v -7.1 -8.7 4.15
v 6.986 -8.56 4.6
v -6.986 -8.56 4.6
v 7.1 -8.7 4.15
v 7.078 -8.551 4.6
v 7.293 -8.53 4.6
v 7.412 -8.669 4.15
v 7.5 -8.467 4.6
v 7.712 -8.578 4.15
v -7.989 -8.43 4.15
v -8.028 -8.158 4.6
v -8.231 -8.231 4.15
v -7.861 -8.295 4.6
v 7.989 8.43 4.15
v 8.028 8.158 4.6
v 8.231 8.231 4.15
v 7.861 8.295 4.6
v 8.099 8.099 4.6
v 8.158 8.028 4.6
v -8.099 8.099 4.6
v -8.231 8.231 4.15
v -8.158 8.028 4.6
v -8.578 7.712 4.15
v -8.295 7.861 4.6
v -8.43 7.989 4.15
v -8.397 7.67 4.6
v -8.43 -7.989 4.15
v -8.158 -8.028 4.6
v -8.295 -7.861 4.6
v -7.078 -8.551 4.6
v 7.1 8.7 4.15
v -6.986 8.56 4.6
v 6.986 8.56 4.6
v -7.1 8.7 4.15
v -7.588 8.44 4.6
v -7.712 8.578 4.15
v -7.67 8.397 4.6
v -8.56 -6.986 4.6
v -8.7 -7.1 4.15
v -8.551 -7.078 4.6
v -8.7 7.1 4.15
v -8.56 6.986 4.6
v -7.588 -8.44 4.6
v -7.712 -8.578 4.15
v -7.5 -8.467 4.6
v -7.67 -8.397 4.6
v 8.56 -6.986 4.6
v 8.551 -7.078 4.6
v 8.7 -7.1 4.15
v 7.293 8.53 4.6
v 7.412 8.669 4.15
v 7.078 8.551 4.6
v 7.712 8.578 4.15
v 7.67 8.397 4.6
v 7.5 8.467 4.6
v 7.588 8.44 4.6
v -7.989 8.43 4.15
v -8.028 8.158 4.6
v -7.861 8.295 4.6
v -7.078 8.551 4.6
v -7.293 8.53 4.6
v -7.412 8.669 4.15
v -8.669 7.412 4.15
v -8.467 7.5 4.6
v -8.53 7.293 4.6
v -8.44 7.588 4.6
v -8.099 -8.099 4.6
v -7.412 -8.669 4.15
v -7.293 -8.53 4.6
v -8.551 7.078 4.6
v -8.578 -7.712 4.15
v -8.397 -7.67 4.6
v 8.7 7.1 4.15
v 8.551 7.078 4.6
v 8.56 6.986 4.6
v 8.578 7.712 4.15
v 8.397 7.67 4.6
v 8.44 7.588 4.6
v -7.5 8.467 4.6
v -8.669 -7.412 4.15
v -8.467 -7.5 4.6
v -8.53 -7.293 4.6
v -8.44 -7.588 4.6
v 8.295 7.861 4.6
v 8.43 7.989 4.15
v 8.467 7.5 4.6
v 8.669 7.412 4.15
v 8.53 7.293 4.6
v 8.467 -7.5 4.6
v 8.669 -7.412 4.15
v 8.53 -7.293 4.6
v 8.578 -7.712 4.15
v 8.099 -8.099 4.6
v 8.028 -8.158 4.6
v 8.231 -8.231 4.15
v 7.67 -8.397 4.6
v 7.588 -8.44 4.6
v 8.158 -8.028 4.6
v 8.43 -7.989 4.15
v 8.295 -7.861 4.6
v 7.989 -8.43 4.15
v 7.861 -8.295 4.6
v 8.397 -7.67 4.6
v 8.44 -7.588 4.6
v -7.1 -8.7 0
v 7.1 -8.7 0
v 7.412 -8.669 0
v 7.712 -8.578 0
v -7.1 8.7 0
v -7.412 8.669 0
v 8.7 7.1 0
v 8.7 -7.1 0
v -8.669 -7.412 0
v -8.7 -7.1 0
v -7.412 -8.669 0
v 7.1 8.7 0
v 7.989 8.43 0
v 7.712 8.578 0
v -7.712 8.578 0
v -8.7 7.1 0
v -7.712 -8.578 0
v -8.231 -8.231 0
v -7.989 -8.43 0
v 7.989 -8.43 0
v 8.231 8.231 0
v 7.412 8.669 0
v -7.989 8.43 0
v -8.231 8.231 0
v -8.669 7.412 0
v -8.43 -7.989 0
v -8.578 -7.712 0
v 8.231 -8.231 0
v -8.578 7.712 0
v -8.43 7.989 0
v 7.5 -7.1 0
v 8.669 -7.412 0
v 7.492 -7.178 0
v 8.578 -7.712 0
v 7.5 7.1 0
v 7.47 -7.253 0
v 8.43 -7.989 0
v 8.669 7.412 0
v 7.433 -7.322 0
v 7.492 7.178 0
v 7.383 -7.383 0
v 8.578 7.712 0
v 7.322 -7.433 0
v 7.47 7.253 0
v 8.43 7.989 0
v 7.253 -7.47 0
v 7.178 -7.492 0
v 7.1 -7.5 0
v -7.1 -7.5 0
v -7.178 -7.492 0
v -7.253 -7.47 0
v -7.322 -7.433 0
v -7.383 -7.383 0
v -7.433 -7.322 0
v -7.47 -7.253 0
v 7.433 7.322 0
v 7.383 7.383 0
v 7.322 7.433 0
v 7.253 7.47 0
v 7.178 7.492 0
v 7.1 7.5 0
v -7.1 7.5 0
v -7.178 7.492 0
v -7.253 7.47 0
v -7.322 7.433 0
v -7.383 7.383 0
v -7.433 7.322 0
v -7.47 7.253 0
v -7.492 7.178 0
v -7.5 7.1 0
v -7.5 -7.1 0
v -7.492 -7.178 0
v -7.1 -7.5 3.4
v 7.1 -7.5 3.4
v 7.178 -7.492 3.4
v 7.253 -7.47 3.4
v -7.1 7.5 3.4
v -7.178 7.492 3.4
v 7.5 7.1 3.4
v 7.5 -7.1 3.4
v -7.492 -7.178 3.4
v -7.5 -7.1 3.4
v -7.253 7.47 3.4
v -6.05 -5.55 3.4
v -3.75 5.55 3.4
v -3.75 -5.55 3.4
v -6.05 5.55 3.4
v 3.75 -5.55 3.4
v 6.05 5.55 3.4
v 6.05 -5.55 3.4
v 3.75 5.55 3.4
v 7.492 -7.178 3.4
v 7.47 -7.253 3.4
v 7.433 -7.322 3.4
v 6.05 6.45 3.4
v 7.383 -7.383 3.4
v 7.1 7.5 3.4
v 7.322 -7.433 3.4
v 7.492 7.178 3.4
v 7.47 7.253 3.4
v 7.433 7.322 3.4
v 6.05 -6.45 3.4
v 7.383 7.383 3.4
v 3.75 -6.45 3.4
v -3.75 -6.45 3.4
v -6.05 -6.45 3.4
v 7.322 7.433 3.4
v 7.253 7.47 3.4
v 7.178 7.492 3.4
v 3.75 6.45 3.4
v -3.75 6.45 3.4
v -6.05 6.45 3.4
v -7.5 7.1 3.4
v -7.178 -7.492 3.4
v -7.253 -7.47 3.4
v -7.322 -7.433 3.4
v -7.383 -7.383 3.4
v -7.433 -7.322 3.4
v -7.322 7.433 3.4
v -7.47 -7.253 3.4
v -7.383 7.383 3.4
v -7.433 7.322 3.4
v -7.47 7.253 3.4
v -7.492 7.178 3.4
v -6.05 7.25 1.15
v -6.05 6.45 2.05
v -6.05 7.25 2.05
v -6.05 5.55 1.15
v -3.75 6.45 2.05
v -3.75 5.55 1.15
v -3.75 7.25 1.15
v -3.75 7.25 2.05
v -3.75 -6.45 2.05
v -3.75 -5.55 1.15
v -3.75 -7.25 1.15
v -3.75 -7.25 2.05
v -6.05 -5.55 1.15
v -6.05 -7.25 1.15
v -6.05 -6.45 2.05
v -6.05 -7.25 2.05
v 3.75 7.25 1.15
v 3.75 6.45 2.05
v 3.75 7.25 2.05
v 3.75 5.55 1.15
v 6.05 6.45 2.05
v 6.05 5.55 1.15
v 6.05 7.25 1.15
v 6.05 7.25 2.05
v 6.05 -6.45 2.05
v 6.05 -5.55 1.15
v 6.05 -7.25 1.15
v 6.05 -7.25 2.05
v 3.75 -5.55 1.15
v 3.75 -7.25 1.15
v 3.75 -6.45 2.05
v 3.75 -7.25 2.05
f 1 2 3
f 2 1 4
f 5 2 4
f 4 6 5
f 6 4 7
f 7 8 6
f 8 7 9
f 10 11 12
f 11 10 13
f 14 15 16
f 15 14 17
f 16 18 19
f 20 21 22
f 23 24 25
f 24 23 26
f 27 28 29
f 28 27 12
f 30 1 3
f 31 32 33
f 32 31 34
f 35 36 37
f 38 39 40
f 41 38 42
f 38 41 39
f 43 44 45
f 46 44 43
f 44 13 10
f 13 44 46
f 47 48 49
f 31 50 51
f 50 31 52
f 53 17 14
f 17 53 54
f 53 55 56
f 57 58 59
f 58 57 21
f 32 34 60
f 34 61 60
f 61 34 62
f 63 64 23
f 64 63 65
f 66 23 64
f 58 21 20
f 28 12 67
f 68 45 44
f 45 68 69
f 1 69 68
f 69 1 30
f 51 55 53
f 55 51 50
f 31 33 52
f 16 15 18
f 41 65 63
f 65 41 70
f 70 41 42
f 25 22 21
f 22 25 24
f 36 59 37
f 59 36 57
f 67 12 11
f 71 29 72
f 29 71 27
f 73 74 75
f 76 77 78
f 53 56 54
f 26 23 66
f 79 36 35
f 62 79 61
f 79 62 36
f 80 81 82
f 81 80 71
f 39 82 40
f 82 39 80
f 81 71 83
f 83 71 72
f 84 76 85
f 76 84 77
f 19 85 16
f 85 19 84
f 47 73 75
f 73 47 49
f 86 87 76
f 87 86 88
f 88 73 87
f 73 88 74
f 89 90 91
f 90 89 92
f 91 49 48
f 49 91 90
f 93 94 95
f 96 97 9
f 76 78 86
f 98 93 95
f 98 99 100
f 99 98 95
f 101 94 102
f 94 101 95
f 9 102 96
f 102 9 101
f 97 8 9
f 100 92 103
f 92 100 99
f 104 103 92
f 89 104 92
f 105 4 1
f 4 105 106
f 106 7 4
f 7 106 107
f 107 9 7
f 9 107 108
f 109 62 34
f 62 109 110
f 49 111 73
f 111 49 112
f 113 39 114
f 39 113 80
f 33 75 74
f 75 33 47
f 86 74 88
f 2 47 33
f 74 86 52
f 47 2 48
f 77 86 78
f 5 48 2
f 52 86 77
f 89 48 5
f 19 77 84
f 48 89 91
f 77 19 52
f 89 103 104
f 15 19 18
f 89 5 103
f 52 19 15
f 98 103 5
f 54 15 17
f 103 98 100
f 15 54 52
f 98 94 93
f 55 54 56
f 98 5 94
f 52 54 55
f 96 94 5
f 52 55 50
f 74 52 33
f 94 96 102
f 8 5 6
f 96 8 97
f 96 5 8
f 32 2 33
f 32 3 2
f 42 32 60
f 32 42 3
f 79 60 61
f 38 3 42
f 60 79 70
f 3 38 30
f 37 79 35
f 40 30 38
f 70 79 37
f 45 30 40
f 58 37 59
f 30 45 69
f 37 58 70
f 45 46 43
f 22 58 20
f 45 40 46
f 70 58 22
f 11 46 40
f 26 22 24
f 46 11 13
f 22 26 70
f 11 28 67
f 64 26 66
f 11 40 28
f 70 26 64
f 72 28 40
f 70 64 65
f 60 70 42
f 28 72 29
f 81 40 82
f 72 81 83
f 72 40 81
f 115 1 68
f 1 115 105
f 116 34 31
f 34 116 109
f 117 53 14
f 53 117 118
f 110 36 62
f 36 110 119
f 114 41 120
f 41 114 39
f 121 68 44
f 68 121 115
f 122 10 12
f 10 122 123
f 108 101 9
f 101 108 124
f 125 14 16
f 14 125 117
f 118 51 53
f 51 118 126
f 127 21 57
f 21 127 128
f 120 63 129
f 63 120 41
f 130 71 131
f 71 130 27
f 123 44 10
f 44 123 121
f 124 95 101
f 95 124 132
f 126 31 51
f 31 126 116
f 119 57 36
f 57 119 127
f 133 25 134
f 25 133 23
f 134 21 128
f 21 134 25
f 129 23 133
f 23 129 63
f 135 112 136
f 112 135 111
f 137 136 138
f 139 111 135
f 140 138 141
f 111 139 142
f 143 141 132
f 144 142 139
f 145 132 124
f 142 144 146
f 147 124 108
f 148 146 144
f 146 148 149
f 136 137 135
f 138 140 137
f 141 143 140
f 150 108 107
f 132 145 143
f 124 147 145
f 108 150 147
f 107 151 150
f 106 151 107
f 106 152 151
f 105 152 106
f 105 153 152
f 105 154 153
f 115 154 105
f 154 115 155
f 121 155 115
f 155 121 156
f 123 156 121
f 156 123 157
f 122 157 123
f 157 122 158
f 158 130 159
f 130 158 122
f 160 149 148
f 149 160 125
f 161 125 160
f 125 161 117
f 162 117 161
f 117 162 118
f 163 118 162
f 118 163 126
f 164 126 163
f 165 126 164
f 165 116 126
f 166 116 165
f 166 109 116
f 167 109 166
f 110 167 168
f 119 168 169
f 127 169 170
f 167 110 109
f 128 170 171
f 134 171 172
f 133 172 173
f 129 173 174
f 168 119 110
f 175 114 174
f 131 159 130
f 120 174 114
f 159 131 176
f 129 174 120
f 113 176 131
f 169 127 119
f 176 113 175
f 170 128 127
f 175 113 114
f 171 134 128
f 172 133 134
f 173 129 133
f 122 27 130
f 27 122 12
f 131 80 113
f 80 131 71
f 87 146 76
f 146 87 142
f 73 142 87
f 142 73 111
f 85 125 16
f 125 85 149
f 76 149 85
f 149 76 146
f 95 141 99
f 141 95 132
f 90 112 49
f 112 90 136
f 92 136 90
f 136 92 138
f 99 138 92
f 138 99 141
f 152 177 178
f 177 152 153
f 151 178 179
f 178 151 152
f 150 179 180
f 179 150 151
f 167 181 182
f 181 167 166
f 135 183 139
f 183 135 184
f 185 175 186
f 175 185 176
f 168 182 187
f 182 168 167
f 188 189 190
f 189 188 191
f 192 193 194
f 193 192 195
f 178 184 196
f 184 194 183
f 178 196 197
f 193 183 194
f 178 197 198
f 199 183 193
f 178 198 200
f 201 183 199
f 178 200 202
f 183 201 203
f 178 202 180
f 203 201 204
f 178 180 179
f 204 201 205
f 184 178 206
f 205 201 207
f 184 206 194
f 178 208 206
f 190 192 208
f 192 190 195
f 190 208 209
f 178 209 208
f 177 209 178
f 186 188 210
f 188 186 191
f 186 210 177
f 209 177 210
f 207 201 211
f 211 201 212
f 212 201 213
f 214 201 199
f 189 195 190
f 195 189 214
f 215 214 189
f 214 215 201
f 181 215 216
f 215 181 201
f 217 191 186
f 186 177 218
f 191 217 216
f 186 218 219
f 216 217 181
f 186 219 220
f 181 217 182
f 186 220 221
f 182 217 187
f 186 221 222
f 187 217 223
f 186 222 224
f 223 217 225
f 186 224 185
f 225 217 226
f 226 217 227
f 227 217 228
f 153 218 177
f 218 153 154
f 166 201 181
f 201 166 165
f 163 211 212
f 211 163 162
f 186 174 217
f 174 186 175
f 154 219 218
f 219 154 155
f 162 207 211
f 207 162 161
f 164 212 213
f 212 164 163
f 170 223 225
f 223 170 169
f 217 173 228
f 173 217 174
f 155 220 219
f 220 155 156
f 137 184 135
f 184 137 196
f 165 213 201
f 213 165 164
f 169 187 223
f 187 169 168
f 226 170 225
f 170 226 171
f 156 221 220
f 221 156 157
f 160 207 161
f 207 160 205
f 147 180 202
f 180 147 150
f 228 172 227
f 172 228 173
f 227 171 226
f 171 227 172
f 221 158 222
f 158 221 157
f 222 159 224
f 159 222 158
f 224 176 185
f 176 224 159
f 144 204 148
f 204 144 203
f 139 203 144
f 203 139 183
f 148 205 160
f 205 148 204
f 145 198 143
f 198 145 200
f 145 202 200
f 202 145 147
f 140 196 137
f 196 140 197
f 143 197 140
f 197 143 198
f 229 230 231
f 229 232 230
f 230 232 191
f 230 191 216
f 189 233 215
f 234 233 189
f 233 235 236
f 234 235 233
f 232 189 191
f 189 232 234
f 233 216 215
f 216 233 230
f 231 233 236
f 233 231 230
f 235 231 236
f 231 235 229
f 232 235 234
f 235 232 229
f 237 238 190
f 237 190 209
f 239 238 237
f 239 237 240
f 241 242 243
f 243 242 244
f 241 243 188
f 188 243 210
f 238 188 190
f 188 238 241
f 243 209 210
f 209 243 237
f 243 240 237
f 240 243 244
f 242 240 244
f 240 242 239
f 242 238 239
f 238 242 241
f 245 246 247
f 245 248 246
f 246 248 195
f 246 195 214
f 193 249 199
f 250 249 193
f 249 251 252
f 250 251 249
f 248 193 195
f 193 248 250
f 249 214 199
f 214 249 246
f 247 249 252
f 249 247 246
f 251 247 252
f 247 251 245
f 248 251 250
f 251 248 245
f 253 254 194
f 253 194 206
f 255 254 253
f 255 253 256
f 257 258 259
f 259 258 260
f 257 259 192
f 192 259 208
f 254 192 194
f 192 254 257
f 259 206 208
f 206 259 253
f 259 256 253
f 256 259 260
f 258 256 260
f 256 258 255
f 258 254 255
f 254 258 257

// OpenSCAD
// ============================================================================
//  笔记本 1u 薄键帽  (直壁 · 底面 2+2 卡扣)
//  ---------------------------------------------------------------------------
//  适配 : 富士通 Lifebook U9311X 一类 13.3" 笔记本的剪刀脚键盘
//
//  外形 : 侧壁【竖直, 没有内收】(TAPER = 0), 四角圆角, 顶缘 45 度倒角,
//         顶面浅球冠指窝。
//  底面 : 上/下两边各 2 个卡扣, 共 4 个。卡扣形式由 CLIP 选择:
//           "hook"   L 形卡爪  -- 竖片 + 底部外翻卡唇, 钩住横杆
//           "fork"   双柱夹口  -- 两片柱夹住横销 (靠弹性/摩擦)
//           "boss"   凸台通孔  -- 圆柱凸台 + 横向通孔, 销子穿进去
//           "snap"   悬臂弹片  -- 45 度导入斜面 + 止退面
//           "none"   底板无卡扣
//
//  预览 : openscad keycap.scad
//  导出 : openscad -o keycap.stl keycap.scad
//  自检 : run_verify.bat        (外形 / 探针 / 连通性 / 负向对照)
// ============================================================================

FN = 32;

/* ------------------------------- 外形 ------------------------------- */
OUT_W  = 17.4;   // 顶面外廓边长 (= 直壁外廓)
TAPER  = 0.0;    // 每侧向内收的量。0 = 直壁(默认); >0 会做成上大下小
H      = 4.6;    // 总高
WALL   = 1.2;    // 侧壁厚 (= 顶板厚)
R_OUT  = 1.6;    // 四角圆角
CHAMF  = 0.45;   // 顶缘倒角高度
DISH   = 0.25;   // 顶面指窝深
R_SPH  = 55.0;   // 指窝球面半径
DISH_FN = 32;    // 指窝球面细分

/* ----------------------------- 底面卡扣 ----------------------------- */
CLIP   = "hook"; // hook | fork | boss | snap | none
CLIP_X = 4.9;    // 卡扣中心 +/-(x)
CLIP_Y = 6.0;    // 卡扣中心 +/-(y)

/* ------------------------------ 派生量 ------------------------------ */
SLOPE = TAPER / H;                        // 外壁半宽随 z 的斜率
R_CAV = max(0.05, R_OUT - WALL);          // 内腔圆角
CAV_H = H - WALL;                         // 内腔顶面 z (= 顶板下表面)
Z_TOP = CAV_H + 0.4;                      // 卡扣顶 (埋进顶板 0.4, 保证融合)

function w_out(z) = OUT_W - 2 * TAPER + 2 * SLOPE * z;            // 外壁边长
function w_in(z)  = OUT_W - 2 * TAPER - 2 * WALL + 2 * SLOPE * z; // 内壁边长

// ---------------------------------------------------------------------------
//  几何基元
// ---------------------------------------------------------------------------
// 圆角方台: 底面边长 w0 -> 顶面边长 w1, 高 h, 底面圆角 r
module slab(w0, w1, h, r) {
    linear_extrude(height = h, scale = w1 / w0, convexity = 10)
        offset(r = r) square([w0 - 2 * r, w0 - 2 * r], center = true);
}

// 在 (z, y) 平面画多边形 [[z, y], ...] 并沿 x 拉伸 w (居中) —— 用来做卡唇/斜面
module prof(w, pts) {
    rotate([0, -90, 0])
        linear_extrude(height = w, center = true, convexity = 10) polygon(pts);
}

module shell() {
    difference() {
        slab(w_out(0), w_out(H), H, R_OUT);
        chamfer_cut();
    }
}

// 顶缘倒角: 从 z = H-CHAMF 起, 把目标外形之外的料切掉。
// 刀具内孔底面与主体截面【完全一致】(零厚度切口), 所以不会在侧壁上留台阶。
module chamfer_cut() {
    zc = H - CHAMF;
    wc = w_out(zc);
    wt = w_out(H) - 2 * CHAMF;
    translate([0, 0, zc])
        difference() {
            translate([-OUT_W, -OUT_W, 0]) cube([2 * OUT_W, 2 * OUT_W, CHAMF + 1]);
            linear_extrude(height = CHAMF + 1, scale = wt / wc, convexity = 10)
                offset(r = R_OUT) square([wc - 2 * R_OUT, wc - 2 * R_OUT], center = true);
        }
}

module cavity() {                       // 内腔 (向下多切 0.5, 避免与底面共面)
    over = 0.5;
    translate([0, 0, -over]) slab(w_in(-over), w_in(CAV_H), CAV_H + over, R_CAV);
}

// 顶面指窝。★必须用「真实球心偏移」的真球, 不能用 scale() 压扁球体★
// 非等比 scale 会把球面四边形拉成非平面多边形, CGAL 求差会静默出错
// (实测: 包围盒从 18.000 掉到 17.872, 体积偏 -10%)。
module dish() {
    translate([0, 0, H + R_SPH - DISH]) sphere(r = R_SPH, $fn = DISH_FN);
}

// ---------------------------------------------------------------------------
//  底面卡扣 (局部坐标: 原点在卡扣中心, 外法线 = +y, 顶面 = Z_TOP)
// ---------------------------------------------------------------------------
CW = 2.3;   // 卡扣宽 (x)
TH = 0.9;   // 卡爪 / 弹片厚 (y)
Z0 = 1.15;  // 卡扣下沿

module clip(kind) {
    if (kind == "hook") {
        // L 形卡爪: 竖片 + 底部外翻卡唇 (钩住剪刀脚顶板上的横杆)
        translate([-CW / 2, -TH / 2, Z0]) cube([CW, TH, Z_TOP - Z0]);
        prof(CW, [[Z0, -TH / 2], [Z0 + 0.9, -TH / 2],
                  [Z0 + 0.9, TH / 2 + 0.8], [Z0, TH / 2 + 0.8]]);
    } else if (kind == "fork") {
        // 双柱夹口: 两片柱子夹住横销 (靠弹性/摩擦, 不需要倒扣)
        GAP = 1.3; PW = 0.8; PH = 1.0;
        for (s = [-1, 1])
            translate([-CW / 2, s > 0 ? GAP / 2 : -GAP / 2 - PW, PH])
                cube([CW, PW, Z_TOP - PH]);
    } else if (kind == "boss") {
        // 圆柱凸台 + 横向通孔 (销子直接穿进去)
        difference() {
            translate([0, 0, 1.0]) cylinder(r = 1.3, h = Z_TOP - 1.0);
            translate([0, 0, 1.7]) rotate([0, 90, 0]) cylinder(r = 0.75, h = 8, center = true);
        }
    } else if (kind == "snap") {
        // 悬臂弹片: 下方 45 度导入斜面 + 上方止退面
        translate([-CW / 2, -TH / 2, 0.9]) cube([CW, TH, Z_TOP - 0.9]);
        prof(CW, [[1.50, -TH / 2], [2.35, -TH / 2],
                  [2.35, 1.30], [2.05, 1.30], [1.50, 0.80]]);
    }
    // "none" -> 什么都不画
}

module clips(kind) {
    if (kind != "none")
        for (sx = [-1, 1]) {
            translate([sx * CLIP_X,  CLIP_Y, 0]) clip(kind);            // 后边 2 个
            translate([sx * CLIP_X, -CLIP_Y, 0]) rotate([0, 0, 180]) clip(kind); // 前边 2 个
        }
}

// ---------------------------------------------------------------------------
//  成品    (show_* 只给 verify.py 的负向对照用; 正常渲染不用改)
// ---------------------------------------------------------------------------
module keycap(kind = CLIP, show_dish = true, show_clips = true) {
    $fn = FN;
    union() {
        difference() {
            shell();
            cavity();
            if (show_dish) dish();
        }
        // 卡扣必须在挖腔【之后】并回, 否则会被内腔切掉
        if (show_clips) clips(kind);
    }
}

keycap();
